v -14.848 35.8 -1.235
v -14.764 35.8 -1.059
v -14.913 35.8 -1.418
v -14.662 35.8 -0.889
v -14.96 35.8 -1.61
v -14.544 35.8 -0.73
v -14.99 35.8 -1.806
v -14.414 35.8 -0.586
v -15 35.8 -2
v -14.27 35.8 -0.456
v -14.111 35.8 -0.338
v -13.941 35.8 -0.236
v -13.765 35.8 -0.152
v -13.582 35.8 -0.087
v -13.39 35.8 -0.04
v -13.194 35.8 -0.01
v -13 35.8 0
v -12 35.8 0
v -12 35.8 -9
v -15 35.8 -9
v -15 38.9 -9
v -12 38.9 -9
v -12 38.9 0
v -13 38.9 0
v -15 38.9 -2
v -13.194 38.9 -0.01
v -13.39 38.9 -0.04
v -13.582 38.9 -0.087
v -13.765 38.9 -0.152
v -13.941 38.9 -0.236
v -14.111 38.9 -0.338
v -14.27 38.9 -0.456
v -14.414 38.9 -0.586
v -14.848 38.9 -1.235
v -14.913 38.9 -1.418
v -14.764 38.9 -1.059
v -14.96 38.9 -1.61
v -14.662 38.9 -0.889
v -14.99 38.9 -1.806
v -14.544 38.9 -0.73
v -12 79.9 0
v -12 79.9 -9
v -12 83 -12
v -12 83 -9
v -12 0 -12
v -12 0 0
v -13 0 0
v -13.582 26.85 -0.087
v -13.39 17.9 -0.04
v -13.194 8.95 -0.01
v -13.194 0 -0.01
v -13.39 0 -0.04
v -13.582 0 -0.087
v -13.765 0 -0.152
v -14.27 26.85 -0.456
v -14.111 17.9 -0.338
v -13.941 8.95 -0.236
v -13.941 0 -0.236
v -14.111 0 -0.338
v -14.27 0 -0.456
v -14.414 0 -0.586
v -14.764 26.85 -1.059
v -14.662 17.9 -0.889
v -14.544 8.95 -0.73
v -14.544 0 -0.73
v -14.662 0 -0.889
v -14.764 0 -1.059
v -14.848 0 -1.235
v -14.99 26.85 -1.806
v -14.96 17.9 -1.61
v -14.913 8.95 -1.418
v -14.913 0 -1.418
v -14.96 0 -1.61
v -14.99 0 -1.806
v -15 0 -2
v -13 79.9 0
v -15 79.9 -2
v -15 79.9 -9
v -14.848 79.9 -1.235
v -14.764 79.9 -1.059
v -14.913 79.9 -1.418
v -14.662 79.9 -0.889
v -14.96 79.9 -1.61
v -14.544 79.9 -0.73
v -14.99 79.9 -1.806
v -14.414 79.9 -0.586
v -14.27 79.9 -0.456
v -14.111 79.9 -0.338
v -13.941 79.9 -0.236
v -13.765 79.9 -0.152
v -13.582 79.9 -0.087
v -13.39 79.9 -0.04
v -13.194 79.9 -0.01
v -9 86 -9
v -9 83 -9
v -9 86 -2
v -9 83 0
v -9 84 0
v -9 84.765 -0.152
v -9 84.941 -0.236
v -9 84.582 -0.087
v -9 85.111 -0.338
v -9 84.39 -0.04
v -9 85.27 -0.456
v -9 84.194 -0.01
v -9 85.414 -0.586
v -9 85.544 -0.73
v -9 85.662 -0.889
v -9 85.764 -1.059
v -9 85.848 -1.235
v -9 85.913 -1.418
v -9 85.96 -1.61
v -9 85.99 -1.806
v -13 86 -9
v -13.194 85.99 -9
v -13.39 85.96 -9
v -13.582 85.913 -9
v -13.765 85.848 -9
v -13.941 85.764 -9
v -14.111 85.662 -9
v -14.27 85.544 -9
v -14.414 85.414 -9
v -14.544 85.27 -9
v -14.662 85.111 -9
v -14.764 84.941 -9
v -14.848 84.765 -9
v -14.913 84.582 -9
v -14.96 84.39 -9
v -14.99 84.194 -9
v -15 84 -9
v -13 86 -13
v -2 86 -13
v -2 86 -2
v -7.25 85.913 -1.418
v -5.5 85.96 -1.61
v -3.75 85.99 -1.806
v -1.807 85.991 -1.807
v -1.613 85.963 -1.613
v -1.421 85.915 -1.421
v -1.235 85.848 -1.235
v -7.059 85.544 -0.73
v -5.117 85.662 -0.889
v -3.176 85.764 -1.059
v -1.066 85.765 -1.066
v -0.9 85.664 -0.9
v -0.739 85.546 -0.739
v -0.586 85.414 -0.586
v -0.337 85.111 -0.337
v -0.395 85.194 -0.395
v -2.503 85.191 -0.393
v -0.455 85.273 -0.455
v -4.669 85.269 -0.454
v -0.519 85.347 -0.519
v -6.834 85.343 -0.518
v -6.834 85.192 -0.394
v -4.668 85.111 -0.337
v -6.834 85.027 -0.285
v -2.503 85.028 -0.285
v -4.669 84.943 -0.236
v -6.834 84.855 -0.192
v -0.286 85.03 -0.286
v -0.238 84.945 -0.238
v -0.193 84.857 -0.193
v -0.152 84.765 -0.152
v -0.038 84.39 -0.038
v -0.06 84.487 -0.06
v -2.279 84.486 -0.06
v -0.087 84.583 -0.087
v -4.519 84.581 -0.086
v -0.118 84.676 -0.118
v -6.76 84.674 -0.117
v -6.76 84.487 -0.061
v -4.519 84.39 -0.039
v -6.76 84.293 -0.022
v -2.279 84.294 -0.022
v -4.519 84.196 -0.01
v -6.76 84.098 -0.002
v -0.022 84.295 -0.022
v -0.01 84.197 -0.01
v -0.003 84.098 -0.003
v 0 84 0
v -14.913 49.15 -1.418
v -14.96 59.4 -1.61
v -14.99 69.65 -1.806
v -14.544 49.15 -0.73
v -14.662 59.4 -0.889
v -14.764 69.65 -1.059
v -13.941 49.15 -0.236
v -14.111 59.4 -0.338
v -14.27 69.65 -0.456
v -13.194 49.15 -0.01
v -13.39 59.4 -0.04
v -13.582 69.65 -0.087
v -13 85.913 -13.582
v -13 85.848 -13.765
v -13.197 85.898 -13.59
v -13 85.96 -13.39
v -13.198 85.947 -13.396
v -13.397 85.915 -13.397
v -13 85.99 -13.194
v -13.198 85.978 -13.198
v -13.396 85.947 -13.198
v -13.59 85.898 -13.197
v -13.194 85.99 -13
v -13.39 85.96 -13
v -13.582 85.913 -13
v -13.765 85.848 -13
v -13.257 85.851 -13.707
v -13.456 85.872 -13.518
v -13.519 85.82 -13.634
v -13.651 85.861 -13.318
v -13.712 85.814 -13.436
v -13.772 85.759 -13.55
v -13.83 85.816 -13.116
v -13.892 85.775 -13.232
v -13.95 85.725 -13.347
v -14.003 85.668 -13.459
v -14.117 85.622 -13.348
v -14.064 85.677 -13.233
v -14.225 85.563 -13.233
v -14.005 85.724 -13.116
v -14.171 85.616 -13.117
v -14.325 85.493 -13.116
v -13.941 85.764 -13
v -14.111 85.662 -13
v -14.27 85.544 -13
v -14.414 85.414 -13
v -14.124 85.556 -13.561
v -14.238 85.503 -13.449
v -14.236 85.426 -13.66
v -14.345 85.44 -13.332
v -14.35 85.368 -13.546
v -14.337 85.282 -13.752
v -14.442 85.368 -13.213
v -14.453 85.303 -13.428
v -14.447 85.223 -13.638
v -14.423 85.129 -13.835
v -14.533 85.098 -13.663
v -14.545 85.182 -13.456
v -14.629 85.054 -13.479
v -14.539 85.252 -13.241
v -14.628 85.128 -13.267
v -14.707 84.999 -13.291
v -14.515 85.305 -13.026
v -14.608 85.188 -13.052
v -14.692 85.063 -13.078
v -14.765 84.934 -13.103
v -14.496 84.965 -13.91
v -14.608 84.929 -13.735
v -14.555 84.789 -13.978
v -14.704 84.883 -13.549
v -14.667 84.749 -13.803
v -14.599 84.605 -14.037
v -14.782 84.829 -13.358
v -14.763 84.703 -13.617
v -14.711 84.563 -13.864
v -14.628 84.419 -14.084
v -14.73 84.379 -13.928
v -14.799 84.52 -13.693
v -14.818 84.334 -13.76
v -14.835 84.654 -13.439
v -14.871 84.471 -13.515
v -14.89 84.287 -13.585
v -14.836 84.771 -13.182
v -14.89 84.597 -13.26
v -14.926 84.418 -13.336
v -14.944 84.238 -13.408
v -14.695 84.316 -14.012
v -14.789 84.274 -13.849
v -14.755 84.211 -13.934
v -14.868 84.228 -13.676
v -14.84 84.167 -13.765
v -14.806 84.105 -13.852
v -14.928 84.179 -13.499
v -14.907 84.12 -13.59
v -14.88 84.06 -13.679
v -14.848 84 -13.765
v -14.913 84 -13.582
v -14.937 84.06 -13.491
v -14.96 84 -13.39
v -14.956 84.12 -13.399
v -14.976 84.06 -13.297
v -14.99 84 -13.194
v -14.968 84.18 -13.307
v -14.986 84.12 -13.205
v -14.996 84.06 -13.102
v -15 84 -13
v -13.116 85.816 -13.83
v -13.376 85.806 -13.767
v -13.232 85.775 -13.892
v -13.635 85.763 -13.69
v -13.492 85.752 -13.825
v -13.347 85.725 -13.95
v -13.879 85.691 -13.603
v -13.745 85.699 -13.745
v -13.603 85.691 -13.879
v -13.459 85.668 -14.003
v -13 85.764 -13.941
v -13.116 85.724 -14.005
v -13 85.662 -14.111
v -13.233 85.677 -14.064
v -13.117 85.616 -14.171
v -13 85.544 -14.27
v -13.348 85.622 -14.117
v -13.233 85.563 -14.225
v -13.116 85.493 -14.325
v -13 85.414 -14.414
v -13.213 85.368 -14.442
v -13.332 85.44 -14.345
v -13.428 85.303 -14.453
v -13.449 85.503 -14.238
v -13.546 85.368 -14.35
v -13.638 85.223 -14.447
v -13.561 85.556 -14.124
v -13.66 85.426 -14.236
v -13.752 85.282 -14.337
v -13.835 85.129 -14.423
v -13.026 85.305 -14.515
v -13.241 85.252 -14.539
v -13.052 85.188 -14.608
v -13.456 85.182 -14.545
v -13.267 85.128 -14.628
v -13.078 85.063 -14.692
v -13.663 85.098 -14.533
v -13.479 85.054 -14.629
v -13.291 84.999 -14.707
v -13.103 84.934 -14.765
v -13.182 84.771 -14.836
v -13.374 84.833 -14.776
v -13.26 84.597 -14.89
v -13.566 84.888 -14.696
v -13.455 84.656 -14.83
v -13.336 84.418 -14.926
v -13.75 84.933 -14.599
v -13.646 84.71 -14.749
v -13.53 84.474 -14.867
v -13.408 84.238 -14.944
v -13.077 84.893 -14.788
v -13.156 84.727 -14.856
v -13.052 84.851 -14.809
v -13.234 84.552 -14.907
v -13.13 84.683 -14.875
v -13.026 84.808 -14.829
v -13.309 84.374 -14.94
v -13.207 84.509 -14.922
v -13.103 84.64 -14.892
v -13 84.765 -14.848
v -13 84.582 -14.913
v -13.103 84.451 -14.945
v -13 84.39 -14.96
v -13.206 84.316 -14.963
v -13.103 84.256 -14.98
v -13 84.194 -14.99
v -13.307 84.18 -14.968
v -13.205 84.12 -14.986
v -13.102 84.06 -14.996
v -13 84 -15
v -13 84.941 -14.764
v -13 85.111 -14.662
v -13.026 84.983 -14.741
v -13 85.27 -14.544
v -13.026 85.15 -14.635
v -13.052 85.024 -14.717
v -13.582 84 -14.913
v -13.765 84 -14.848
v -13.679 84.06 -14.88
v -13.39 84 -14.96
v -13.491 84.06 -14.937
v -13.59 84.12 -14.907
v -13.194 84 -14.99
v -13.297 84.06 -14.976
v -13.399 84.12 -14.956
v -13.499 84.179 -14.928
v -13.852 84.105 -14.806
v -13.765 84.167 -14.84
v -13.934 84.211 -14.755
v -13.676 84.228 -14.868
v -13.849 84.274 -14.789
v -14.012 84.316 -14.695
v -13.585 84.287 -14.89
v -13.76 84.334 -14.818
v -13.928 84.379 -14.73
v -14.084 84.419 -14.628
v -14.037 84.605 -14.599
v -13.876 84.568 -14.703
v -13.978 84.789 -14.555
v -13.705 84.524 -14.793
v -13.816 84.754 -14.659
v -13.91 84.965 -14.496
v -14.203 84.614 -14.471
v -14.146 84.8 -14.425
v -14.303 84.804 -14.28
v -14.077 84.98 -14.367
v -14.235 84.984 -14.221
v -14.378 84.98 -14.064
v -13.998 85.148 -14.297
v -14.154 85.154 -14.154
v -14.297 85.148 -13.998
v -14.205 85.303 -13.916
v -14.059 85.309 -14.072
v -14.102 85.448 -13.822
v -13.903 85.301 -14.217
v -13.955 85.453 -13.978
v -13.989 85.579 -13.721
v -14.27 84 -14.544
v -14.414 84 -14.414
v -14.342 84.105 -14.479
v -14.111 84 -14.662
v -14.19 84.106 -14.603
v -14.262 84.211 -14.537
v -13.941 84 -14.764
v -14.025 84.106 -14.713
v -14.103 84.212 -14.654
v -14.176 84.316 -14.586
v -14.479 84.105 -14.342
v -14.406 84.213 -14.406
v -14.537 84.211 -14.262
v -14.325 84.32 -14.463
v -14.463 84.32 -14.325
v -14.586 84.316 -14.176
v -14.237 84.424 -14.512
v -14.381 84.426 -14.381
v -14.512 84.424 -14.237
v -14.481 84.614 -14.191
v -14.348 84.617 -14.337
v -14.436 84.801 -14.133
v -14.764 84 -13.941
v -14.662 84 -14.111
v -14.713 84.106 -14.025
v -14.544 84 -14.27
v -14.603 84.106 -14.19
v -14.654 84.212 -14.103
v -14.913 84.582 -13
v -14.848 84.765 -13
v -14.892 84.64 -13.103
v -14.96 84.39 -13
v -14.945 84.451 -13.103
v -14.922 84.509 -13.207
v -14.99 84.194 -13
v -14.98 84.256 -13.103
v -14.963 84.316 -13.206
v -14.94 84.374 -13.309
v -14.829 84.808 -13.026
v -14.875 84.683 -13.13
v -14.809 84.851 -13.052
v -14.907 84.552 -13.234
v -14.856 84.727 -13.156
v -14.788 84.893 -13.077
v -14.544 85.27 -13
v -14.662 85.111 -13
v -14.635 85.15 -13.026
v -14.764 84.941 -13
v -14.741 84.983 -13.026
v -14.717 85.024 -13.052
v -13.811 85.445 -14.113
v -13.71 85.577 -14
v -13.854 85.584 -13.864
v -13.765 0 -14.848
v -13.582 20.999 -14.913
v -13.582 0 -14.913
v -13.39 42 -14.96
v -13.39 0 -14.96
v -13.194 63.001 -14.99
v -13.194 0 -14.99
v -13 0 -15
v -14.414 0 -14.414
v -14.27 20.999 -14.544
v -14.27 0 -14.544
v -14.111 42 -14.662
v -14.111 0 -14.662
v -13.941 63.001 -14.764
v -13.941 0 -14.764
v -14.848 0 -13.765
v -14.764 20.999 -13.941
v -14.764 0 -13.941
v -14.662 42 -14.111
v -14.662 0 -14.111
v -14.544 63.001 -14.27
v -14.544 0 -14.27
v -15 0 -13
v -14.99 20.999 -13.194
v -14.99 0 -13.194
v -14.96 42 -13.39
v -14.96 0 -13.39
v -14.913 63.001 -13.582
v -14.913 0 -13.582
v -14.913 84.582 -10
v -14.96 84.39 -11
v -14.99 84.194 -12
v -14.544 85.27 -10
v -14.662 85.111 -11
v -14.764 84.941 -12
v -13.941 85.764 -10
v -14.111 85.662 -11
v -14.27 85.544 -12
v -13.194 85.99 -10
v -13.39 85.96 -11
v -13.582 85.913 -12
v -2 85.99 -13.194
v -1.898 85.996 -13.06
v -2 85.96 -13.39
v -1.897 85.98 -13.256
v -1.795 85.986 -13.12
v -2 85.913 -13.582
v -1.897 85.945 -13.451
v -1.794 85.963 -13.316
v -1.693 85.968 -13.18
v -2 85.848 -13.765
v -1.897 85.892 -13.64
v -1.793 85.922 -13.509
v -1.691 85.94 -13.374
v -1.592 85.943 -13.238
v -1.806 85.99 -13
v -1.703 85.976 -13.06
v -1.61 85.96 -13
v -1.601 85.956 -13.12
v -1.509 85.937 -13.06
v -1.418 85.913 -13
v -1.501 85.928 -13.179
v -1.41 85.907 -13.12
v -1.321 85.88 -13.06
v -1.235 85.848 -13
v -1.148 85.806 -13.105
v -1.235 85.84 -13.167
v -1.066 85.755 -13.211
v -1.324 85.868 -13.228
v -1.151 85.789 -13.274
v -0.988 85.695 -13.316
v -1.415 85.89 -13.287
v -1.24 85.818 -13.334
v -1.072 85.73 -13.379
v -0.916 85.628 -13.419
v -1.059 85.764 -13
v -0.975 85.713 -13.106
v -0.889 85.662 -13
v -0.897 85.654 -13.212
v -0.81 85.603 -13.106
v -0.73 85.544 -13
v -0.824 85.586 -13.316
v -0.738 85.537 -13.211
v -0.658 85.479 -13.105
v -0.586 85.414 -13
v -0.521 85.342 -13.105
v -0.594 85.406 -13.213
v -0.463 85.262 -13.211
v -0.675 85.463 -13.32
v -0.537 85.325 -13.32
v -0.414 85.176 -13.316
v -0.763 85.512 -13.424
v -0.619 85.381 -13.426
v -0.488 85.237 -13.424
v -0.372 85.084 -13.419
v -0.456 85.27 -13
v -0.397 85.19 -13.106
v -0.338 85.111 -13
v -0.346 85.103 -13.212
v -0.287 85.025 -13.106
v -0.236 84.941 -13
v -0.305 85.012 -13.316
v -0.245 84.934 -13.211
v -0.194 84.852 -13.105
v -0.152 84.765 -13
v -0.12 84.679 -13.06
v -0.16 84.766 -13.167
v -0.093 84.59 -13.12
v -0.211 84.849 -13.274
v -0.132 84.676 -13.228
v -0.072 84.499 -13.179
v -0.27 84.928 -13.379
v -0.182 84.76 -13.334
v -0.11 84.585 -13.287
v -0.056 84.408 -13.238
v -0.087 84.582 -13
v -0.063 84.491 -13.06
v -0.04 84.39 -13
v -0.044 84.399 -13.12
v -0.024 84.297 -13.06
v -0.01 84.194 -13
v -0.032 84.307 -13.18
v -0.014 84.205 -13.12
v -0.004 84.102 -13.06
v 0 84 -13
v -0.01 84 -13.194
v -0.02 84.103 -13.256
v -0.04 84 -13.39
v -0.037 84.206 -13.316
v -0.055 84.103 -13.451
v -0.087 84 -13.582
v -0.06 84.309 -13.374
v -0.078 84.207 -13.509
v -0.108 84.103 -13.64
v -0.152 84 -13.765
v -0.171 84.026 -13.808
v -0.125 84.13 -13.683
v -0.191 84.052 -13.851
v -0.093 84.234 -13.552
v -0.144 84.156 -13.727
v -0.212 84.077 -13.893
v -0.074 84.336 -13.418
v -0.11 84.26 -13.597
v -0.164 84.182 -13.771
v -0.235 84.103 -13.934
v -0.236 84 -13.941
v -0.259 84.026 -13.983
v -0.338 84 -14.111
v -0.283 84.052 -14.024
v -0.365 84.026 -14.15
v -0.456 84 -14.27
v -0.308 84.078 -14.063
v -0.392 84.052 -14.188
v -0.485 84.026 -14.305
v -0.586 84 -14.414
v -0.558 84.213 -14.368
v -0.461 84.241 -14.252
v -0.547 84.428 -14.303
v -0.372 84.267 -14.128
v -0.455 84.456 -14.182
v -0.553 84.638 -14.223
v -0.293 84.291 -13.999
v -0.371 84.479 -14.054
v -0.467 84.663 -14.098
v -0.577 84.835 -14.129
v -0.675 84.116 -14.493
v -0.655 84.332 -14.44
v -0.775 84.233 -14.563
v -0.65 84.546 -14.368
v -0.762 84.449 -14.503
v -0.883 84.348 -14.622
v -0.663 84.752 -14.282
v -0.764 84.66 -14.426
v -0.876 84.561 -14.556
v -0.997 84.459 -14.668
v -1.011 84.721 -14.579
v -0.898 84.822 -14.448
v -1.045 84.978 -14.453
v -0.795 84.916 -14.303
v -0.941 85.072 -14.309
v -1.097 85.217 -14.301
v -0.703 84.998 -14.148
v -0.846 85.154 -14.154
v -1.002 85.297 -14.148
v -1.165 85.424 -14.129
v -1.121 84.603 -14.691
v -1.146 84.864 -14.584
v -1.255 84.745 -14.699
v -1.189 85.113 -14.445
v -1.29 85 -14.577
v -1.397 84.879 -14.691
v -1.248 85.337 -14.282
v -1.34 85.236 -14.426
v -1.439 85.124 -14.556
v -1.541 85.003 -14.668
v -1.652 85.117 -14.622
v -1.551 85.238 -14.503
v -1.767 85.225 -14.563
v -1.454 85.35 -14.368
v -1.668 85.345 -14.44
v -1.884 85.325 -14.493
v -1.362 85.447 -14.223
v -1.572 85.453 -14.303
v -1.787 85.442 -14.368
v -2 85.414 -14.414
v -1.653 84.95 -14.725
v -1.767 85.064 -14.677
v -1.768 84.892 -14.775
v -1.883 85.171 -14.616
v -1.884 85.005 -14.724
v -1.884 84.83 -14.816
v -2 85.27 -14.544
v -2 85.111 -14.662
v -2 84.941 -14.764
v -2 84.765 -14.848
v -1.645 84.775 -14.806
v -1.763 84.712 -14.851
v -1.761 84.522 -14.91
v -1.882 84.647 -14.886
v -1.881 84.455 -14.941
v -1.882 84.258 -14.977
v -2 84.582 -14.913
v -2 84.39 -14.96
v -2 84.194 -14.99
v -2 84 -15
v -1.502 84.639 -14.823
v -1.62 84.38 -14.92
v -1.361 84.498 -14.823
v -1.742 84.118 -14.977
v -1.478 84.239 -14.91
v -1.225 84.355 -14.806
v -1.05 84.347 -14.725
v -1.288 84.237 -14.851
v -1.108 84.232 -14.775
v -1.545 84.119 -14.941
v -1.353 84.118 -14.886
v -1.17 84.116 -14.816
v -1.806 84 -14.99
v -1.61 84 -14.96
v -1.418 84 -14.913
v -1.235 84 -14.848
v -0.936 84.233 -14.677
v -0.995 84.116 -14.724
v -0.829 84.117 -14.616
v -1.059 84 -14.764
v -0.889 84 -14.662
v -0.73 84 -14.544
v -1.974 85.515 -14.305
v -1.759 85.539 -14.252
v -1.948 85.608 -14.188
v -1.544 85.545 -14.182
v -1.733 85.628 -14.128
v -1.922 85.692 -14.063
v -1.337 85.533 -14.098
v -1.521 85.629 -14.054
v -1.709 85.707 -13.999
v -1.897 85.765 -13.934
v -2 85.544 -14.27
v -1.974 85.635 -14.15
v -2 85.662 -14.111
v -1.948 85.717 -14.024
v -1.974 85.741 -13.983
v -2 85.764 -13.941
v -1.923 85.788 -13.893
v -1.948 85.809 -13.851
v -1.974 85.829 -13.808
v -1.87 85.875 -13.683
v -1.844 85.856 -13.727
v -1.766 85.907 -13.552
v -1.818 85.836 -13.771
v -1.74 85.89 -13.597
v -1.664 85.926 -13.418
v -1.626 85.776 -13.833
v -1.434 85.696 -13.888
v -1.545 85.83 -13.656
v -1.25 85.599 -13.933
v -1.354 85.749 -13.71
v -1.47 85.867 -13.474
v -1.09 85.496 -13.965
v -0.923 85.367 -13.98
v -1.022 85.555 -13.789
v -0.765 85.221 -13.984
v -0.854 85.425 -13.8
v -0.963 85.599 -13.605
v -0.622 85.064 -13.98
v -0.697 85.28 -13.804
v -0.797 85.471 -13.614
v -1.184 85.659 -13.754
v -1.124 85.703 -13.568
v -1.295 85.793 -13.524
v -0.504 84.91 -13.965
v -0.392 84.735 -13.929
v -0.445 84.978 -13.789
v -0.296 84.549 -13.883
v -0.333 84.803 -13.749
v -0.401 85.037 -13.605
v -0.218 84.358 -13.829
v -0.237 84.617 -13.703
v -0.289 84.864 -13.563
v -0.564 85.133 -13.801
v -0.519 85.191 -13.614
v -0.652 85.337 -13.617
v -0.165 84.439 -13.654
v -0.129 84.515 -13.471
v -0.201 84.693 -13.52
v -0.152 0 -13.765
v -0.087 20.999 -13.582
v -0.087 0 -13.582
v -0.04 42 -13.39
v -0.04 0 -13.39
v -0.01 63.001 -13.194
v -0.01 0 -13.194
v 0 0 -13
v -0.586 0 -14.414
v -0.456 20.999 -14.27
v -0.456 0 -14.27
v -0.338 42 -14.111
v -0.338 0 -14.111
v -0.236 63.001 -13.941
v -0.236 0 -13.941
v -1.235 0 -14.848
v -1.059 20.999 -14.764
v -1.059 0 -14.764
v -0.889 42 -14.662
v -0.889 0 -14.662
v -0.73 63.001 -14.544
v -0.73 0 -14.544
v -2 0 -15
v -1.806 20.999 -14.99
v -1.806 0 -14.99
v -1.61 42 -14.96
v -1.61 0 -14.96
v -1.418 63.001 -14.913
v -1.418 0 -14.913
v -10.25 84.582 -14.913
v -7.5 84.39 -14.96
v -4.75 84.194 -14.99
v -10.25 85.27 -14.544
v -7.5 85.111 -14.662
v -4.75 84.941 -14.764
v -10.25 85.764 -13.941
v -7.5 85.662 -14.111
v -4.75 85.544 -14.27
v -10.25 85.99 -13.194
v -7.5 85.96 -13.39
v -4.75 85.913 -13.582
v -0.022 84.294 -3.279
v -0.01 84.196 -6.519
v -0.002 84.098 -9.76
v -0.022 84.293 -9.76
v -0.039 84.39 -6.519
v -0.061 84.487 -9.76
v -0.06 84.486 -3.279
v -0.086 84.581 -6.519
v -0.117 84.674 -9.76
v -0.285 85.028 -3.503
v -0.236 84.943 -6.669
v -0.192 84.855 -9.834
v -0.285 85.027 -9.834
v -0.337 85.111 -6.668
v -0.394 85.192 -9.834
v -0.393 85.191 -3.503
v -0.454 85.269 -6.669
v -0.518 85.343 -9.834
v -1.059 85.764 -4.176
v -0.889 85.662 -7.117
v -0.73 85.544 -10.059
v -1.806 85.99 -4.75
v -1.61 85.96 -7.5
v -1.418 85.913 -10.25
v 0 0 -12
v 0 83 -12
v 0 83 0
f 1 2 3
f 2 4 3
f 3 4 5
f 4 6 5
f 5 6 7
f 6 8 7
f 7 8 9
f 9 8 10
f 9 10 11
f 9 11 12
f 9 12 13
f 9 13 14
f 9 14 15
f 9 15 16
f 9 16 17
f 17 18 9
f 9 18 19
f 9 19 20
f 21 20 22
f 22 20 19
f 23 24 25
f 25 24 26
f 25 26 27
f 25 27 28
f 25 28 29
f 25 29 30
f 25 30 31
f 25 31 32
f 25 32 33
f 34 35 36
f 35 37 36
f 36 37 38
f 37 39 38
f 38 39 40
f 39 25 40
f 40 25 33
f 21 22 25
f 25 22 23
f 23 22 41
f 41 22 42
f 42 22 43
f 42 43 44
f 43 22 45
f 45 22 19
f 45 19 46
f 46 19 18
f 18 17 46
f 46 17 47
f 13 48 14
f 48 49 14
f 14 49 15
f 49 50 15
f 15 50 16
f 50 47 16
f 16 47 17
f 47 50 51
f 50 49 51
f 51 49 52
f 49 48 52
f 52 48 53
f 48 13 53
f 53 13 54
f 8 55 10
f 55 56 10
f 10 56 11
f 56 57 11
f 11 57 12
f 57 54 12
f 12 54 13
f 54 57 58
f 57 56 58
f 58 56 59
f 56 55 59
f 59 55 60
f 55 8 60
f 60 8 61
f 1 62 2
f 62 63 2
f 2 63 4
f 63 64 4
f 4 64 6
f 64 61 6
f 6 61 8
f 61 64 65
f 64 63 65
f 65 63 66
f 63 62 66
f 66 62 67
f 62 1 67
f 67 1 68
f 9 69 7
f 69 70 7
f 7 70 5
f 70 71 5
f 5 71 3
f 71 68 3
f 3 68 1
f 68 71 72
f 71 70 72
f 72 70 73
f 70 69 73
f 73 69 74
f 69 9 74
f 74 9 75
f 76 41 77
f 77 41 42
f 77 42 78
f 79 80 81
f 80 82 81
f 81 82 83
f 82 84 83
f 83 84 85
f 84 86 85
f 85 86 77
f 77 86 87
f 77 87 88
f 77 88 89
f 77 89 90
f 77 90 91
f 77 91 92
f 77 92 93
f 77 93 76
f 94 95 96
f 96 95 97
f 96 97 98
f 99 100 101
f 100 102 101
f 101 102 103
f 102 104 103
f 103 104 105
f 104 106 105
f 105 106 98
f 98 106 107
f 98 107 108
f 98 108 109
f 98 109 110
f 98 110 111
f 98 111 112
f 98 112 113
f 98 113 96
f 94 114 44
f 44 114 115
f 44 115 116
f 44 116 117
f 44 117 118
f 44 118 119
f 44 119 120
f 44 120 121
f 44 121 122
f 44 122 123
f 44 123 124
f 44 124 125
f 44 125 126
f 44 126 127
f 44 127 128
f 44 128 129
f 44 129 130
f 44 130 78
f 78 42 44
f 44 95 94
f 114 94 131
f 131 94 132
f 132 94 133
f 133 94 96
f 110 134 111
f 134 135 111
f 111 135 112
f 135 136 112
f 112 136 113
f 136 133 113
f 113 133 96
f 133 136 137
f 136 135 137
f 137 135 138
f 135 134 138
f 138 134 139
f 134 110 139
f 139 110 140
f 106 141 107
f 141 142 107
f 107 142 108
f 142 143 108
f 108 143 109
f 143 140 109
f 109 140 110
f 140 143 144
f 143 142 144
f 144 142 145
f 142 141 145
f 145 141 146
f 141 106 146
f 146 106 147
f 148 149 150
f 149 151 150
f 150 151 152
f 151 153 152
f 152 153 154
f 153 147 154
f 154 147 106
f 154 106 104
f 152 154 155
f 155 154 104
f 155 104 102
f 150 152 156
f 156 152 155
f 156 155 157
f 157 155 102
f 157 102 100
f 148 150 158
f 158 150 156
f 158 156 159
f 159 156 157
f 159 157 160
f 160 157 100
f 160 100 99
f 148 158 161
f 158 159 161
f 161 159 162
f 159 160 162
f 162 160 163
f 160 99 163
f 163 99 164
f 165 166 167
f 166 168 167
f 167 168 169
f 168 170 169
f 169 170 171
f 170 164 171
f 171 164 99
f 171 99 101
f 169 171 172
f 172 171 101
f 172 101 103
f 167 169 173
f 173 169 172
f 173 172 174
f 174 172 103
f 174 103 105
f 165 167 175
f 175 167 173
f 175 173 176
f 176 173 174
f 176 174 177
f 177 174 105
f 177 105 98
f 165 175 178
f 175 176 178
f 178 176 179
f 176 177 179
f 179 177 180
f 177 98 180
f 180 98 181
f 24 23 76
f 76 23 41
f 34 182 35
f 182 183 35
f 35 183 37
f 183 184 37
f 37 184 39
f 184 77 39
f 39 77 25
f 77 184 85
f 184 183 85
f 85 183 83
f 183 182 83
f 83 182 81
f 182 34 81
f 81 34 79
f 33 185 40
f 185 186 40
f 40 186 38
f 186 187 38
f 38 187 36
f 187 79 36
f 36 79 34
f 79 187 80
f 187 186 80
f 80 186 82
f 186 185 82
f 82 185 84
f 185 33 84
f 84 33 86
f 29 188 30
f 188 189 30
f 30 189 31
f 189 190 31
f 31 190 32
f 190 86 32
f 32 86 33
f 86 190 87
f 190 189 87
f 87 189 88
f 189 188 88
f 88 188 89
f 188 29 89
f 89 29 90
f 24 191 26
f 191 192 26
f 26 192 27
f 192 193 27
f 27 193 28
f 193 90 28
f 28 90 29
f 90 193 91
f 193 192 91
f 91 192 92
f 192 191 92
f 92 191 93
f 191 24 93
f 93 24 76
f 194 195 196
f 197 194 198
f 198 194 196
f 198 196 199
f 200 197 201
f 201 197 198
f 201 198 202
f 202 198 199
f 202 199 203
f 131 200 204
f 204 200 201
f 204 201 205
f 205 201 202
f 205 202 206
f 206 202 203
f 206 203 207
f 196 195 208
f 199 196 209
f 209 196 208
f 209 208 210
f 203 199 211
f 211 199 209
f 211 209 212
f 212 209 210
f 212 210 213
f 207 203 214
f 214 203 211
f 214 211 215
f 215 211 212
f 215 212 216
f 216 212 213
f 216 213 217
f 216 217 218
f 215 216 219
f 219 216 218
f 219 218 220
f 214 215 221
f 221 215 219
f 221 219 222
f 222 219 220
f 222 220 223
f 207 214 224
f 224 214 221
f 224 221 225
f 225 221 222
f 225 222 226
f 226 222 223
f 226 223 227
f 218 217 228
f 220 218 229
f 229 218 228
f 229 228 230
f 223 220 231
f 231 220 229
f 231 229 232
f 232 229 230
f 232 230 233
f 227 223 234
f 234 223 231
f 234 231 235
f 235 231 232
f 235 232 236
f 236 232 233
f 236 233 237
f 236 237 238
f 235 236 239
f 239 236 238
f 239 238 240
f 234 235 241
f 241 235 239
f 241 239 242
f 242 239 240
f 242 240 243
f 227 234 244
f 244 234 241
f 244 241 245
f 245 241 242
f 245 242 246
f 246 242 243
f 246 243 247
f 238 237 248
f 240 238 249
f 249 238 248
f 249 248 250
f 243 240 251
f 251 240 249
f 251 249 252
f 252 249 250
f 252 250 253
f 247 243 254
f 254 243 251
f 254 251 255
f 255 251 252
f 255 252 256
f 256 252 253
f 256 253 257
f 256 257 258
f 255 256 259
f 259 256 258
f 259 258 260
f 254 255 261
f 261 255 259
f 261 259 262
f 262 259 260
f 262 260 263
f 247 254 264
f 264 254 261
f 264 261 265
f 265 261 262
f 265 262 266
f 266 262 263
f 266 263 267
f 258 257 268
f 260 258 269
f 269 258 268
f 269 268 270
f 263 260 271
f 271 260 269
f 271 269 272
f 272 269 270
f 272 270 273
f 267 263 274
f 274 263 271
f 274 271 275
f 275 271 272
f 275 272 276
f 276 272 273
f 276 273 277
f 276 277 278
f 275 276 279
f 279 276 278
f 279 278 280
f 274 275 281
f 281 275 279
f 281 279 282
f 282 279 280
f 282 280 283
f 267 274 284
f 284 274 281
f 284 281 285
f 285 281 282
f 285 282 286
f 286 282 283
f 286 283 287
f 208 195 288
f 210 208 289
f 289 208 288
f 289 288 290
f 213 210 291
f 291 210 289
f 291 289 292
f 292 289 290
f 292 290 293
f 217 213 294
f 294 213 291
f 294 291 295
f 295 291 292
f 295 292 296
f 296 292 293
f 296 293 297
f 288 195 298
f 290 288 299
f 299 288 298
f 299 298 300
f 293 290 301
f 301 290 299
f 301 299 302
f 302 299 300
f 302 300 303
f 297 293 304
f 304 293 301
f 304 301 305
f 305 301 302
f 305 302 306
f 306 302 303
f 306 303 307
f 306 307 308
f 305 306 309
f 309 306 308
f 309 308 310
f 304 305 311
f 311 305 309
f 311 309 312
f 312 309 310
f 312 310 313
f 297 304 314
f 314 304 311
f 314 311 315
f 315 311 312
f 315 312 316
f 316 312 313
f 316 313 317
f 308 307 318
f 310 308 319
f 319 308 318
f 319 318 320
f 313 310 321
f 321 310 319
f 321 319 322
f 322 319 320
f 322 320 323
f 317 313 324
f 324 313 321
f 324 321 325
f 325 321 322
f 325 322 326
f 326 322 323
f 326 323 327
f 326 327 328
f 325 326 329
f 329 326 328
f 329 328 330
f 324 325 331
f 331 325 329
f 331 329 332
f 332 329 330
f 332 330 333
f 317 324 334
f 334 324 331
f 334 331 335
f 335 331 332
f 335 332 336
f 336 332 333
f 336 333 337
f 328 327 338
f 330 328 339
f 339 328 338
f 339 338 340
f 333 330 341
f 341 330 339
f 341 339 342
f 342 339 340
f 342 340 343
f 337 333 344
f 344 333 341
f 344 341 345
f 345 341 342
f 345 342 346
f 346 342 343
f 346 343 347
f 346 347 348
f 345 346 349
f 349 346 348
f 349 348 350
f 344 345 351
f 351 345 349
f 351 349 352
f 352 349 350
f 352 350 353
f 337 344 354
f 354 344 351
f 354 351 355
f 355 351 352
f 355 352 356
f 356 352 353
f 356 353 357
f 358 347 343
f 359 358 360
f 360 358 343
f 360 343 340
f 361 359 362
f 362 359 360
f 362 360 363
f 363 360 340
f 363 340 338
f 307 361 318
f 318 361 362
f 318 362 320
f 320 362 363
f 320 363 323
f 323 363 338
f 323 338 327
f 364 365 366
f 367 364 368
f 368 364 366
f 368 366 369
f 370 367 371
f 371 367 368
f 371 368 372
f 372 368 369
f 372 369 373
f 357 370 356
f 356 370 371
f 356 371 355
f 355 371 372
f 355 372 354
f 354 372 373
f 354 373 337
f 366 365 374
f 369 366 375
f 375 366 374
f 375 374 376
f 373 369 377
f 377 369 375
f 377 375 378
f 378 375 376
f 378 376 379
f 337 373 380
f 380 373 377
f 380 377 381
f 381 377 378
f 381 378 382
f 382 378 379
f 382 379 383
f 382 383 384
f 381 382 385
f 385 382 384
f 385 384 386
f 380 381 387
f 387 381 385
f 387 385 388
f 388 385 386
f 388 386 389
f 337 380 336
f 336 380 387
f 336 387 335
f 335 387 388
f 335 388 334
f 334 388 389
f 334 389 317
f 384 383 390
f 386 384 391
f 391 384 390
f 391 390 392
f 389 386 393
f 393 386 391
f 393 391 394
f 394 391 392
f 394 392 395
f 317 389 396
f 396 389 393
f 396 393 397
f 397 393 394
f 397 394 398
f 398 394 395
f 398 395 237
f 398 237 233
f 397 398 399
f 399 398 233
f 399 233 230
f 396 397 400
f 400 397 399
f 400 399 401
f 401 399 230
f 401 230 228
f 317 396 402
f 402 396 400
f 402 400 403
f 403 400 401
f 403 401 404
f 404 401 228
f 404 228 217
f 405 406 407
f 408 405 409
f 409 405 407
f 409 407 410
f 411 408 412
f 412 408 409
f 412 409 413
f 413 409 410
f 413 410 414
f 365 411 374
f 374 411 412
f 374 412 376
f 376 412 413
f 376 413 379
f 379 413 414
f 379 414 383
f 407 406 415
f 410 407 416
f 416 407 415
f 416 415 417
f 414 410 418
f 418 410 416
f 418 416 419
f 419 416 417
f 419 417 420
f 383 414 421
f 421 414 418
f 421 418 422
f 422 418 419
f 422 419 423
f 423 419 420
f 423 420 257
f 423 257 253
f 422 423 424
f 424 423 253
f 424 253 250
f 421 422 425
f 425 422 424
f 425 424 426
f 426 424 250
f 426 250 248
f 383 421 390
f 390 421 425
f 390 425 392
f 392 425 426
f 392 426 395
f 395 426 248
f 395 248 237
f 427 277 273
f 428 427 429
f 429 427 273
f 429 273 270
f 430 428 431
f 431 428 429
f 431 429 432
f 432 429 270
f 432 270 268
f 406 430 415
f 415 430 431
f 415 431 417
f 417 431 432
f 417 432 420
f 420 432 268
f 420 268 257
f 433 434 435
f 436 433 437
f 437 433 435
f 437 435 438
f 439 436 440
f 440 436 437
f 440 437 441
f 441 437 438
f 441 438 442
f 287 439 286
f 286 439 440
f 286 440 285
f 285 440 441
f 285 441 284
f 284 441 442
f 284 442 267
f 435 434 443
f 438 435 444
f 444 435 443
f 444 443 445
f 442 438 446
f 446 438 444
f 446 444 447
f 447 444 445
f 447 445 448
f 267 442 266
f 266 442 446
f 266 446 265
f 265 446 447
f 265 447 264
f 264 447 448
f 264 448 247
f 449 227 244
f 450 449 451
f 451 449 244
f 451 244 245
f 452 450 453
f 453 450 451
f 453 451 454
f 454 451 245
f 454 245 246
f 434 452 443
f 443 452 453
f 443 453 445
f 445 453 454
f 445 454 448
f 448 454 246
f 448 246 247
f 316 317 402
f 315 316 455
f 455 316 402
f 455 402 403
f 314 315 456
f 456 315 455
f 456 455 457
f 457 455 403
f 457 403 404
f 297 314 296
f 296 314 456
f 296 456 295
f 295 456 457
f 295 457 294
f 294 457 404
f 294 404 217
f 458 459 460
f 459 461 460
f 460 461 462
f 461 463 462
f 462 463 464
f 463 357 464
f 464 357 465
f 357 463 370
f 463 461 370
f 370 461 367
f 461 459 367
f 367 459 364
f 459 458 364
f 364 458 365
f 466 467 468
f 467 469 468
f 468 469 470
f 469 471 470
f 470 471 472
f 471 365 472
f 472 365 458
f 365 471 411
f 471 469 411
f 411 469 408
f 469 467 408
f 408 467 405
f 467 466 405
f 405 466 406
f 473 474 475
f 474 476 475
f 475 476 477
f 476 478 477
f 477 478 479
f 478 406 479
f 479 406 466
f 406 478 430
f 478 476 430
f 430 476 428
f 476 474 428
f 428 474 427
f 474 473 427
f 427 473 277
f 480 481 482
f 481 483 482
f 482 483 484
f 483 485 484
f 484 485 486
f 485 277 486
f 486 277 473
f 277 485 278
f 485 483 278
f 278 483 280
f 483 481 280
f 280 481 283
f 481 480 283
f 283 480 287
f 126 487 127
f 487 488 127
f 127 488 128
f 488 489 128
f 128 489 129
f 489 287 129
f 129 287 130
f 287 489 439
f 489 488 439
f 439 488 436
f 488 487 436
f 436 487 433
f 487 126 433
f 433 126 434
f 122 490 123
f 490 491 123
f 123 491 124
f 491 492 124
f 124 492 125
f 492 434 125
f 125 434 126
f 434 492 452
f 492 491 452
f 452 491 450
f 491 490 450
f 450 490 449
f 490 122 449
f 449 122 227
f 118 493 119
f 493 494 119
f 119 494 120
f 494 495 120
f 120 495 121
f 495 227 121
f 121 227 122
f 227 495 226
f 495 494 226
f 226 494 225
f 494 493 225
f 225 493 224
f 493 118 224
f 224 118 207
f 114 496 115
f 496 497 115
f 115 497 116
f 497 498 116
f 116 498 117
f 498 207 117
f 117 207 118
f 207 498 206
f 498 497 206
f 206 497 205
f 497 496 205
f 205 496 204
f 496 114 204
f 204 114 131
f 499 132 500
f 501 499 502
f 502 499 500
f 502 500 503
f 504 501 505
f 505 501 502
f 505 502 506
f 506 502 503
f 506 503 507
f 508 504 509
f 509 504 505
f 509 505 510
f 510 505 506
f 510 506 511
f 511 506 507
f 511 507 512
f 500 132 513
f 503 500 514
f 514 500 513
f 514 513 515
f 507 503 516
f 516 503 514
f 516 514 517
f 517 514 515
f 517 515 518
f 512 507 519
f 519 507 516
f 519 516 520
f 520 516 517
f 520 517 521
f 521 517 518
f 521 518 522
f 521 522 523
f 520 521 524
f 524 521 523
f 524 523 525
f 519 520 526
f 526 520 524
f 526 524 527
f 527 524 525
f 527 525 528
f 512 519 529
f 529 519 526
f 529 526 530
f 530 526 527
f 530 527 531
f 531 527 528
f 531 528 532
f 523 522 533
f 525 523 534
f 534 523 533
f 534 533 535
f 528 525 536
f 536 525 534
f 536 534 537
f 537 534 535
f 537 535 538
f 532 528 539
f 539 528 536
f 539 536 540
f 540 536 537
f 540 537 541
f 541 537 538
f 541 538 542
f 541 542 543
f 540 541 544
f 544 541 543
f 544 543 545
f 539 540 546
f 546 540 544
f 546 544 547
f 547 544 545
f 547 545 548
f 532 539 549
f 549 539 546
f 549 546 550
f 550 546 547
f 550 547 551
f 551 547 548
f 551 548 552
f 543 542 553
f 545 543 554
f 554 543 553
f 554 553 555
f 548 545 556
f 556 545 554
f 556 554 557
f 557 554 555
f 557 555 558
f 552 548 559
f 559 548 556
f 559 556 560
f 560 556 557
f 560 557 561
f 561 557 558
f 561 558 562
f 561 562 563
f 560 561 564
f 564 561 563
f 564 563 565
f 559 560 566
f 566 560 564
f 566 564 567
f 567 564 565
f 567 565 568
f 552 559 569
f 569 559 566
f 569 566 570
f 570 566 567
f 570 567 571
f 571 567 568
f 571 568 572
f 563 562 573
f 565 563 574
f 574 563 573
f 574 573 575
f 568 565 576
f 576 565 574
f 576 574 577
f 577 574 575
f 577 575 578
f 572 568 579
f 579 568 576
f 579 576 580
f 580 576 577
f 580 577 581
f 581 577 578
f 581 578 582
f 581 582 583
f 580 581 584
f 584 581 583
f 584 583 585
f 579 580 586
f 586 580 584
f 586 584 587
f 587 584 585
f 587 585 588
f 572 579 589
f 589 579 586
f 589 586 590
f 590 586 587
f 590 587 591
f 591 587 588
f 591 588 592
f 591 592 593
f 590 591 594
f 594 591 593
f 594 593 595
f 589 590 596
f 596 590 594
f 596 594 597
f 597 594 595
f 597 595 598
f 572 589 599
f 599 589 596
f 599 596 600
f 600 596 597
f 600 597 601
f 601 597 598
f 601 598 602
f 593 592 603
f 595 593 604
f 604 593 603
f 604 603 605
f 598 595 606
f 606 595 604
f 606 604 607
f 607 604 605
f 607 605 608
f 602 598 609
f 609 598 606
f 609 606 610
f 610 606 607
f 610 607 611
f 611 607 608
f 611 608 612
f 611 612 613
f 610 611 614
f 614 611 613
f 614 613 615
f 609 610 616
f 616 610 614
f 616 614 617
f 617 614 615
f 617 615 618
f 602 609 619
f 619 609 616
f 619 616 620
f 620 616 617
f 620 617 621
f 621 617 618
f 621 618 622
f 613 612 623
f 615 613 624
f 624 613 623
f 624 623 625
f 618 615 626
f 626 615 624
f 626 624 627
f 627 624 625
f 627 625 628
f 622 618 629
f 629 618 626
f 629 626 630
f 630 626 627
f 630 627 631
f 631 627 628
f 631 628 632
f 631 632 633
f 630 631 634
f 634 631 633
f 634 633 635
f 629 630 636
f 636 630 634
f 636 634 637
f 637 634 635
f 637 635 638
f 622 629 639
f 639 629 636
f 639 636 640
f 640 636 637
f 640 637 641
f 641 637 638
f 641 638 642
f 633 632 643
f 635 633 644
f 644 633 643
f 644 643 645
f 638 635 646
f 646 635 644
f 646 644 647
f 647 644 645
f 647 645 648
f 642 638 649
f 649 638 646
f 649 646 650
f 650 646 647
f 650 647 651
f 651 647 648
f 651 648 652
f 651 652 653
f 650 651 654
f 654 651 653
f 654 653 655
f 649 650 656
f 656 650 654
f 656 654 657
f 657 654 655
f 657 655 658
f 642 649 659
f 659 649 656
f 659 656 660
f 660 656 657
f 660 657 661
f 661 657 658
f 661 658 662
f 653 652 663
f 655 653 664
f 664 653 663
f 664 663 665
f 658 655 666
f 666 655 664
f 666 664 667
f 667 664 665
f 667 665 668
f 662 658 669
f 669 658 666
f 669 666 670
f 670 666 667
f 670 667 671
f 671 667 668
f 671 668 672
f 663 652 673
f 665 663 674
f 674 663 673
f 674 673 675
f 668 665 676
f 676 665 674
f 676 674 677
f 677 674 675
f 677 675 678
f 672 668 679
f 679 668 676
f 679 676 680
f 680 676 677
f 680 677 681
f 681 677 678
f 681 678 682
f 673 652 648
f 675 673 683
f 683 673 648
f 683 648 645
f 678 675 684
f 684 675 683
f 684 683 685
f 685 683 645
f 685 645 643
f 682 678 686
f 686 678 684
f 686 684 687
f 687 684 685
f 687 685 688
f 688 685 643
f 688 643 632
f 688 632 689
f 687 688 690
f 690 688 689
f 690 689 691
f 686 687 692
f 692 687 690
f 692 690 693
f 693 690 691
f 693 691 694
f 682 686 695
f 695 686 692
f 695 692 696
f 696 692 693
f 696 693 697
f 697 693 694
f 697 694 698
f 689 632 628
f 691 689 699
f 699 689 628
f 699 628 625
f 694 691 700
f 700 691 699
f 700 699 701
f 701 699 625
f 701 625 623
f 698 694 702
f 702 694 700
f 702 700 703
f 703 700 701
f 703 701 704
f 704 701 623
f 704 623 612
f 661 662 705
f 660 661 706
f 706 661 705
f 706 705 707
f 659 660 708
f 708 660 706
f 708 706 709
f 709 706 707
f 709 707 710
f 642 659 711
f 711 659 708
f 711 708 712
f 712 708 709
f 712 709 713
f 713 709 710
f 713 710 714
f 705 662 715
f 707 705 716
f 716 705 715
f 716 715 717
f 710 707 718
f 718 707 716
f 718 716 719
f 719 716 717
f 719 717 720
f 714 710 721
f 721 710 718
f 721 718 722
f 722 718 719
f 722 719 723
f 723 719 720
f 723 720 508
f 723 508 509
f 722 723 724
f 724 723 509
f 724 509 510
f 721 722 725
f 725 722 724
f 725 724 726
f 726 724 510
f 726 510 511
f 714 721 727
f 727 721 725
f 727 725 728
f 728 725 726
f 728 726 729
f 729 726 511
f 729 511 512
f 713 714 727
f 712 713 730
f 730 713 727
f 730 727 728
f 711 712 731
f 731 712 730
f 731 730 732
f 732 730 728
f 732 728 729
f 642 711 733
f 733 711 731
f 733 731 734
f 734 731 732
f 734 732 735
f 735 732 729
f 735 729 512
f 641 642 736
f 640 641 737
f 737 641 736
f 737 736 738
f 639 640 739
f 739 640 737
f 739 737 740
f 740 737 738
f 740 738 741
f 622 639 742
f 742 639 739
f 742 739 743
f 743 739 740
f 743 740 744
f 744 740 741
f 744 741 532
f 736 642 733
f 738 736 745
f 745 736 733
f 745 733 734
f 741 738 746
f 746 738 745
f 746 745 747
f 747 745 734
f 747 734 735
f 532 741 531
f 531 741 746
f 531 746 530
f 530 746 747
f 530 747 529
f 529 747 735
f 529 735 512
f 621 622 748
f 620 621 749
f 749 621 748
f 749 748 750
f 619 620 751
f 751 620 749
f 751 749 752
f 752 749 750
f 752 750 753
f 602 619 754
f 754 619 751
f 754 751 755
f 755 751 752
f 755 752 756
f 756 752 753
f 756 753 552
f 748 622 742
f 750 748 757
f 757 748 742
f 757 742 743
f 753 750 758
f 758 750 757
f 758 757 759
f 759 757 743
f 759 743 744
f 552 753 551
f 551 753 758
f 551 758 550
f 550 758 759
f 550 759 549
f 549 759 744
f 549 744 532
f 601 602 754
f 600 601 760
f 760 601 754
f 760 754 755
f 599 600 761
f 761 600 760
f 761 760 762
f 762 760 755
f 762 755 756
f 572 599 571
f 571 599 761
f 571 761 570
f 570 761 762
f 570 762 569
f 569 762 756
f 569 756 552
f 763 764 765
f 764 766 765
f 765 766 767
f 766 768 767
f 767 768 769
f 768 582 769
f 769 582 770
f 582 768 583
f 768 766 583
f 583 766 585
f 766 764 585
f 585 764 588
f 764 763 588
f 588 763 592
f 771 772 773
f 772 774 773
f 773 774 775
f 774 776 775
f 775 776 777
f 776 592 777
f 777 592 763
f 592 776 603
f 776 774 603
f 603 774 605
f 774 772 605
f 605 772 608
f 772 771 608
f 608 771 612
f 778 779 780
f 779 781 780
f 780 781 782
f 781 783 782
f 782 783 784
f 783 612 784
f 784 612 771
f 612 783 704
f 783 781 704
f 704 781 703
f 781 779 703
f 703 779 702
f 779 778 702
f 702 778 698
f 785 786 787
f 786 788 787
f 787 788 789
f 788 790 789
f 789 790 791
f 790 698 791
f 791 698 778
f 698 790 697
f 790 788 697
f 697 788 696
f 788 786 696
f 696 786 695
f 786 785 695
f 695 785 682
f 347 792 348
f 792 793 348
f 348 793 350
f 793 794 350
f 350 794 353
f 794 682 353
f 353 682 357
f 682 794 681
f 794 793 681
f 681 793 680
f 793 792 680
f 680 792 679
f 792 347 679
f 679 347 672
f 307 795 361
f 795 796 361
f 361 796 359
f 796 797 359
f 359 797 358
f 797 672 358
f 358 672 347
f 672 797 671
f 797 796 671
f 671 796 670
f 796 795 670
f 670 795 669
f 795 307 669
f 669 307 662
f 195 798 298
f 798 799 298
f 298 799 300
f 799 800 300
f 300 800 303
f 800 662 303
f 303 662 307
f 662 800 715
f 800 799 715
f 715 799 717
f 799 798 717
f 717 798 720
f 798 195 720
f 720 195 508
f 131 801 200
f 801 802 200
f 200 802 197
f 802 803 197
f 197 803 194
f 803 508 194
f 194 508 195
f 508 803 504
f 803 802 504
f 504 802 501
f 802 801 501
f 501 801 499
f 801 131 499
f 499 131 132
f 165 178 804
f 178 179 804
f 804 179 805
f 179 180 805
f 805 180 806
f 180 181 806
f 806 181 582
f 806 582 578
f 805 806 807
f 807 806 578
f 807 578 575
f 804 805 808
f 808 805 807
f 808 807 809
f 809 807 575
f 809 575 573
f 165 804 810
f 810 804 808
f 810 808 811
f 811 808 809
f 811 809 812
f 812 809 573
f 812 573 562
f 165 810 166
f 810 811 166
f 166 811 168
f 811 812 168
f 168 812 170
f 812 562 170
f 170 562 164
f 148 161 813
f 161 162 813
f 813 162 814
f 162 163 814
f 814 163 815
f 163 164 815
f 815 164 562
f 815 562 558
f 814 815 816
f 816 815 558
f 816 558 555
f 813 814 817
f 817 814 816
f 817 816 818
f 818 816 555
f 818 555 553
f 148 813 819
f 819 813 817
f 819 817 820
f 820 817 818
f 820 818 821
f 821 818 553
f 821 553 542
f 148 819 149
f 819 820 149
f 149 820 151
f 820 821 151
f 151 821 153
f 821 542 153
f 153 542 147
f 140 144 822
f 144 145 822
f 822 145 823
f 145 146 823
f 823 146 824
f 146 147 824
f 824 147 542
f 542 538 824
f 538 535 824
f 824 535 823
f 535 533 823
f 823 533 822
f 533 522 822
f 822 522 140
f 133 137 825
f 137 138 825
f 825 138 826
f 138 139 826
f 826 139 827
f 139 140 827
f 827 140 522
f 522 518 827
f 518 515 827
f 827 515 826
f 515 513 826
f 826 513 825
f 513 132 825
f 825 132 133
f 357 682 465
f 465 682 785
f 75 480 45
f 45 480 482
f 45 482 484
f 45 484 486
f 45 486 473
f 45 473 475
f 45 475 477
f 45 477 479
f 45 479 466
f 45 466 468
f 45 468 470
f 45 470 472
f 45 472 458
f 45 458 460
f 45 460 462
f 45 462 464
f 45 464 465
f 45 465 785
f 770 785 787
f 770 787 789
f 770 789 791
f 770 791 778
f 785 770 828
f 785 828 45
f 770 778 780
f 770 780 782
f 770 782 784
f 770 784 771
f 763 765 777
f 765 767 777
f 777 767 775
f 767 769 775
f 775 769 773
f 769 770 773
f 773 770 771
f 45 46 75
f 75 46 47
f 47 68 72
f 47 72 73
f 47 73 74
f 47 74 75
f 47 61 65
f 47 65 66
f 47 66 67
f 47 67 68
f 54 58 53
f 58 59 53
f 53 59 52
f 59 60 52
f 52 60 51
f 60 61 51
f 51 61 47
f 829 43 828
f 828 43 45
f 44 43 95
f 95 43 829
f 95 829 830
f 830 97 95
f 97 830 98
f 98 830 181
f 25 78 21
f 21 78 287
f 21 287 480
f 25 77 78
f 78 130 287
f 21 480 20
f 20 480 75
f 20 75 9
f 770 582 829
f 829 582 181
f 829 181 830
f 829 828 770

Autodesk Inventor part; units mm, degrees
ref_plane "YZ Plane" through (0, 0, 0) normal (1, 0, 0) x (0, 1, 0)
ref_plane "XZ Plane" through (0, 0, 0) normal (0, 1, 0) x (-1, 0, 0)
ref_plane "XY Plane" through (0, 0, 0) normal (0, 0, 1) x (1, 0, 0)
sketch "Sketch1" plane through (0, 0, 0) normal (0, 1, 0) x (-1, 0, 0)
  line L0 (15, 0) -> (15, -15)
  line L1 (15, -15) -> (0, -15)
  line L2 (0, -15) -> (0, -12)
  line L3 (0, -12) -> (12, -12)
  line L4 (12, -12) -> (12, 0)
  line L5 (12, 0) -> (15, 0)
  point P0 (0, 0)
  dimension "d0" = 15
  dimension "d1" = 15
  dimension "d10" = 3
  dimension "d11" = 12
  dimension "d12" = 12
extrude "Extrusion1" add sketch "Sketch1" along normal blind 86
sketch "Sketch4" plane through (-12, 0, 0) normal (1, 0, 0) x (0, 0, -1)
  line L0 (0, 0) -> (0, 86) projected
  line L1 (12, 0) -> (12, 86) projected
  line L2 (0, 86) -> (12, 86)
  line L3 (12, 86) -> (12, 83)
  line L4 (12, 83) -> (0, 83)
  line L5 (0, 83) -> (0, 86)
  dimension "d13" = 3
extrude "Extrusion3" add sketch "Sketch4" along normal blind 3.1
sketch "Sketch6" plane through (-12, 0, -12) normal (0, 0, 1) x (1, 0, 0)
  line L0 (3.1, 86) -> (12, 86) projected
  line L1 (12, 86) -> (3.1, 86)
  line L2 (3.1, 86) -> (3.1, 83)
  line L3 (3.1, 83) -> (12, 83)
  line L4 (12, 83) -> (12, 86)
  point P0 (12, 0)
extrude "Extrusion4" add sketch "Sketch6" along normal blind 12
fillet "Fillet3" radius 2 7 edges at (-7.5, 86, -15) (-15, 86, -7.5) (-15, 43, -15) (0, 43, -15) (-7.5, 86, 0) (0, 86, -7.5) (-15, 43, 0)
sketch "Sketch11" plane through (0, 86, 0) normal (0, 1, 0) x (1, 0, 0)
  arc A0 (-15, 2) -> (-13, 0) centre (-13, 2) ccw projected
  line L0 (-13, 0) -> (-10, 0)
  line L1 (-15, 9) -> (-15, 0)
  line L2 (-15, 0) -> (-13, 0)
  line L3 (-9, 9) -> (-9, 0)
  line L4 (-9, 0) -> (-15, 0)
  line L5 (-9, 9) -> (-15, 9)
  point P0 (0, 0)
  point P1 (-13, 0)
extrude "Extrusion7" cut sketch "Sketch11" against normal blind 6.1
sketch "Sketch12" plane through (-12, 0, 0) normal (1, 0, 0) x (0, 0, -1)
  line L0 (0, 33) -> (9, 33) construction
  line L1 (0, 38.9) -> (0, 36)
  line L2 (9, 36) -> (9, 38.9)
  line L3 (0, 36) -> (0, 38.9)
  line L4 (9, 36) -> (9, 35.9)
  line L5 (9, 38.9) -> (0, 38.9)
  line L6 (9, 38.9) -> (9, 35.8)
  line L7 (9, 35.8) -> (0, 35.8)
  line L8 (0, 0) -> (0, 79.9) projected
  line L9 (0, 35.8) -> (0, 38.9)
  dimension "d49" = 3.1
  dimension "d50" = 9
extrude "Extrusion8" cut sketch "Sketch12" against normal through all
properties part number "DoosjeHoeken" material "ABS Plastic"
